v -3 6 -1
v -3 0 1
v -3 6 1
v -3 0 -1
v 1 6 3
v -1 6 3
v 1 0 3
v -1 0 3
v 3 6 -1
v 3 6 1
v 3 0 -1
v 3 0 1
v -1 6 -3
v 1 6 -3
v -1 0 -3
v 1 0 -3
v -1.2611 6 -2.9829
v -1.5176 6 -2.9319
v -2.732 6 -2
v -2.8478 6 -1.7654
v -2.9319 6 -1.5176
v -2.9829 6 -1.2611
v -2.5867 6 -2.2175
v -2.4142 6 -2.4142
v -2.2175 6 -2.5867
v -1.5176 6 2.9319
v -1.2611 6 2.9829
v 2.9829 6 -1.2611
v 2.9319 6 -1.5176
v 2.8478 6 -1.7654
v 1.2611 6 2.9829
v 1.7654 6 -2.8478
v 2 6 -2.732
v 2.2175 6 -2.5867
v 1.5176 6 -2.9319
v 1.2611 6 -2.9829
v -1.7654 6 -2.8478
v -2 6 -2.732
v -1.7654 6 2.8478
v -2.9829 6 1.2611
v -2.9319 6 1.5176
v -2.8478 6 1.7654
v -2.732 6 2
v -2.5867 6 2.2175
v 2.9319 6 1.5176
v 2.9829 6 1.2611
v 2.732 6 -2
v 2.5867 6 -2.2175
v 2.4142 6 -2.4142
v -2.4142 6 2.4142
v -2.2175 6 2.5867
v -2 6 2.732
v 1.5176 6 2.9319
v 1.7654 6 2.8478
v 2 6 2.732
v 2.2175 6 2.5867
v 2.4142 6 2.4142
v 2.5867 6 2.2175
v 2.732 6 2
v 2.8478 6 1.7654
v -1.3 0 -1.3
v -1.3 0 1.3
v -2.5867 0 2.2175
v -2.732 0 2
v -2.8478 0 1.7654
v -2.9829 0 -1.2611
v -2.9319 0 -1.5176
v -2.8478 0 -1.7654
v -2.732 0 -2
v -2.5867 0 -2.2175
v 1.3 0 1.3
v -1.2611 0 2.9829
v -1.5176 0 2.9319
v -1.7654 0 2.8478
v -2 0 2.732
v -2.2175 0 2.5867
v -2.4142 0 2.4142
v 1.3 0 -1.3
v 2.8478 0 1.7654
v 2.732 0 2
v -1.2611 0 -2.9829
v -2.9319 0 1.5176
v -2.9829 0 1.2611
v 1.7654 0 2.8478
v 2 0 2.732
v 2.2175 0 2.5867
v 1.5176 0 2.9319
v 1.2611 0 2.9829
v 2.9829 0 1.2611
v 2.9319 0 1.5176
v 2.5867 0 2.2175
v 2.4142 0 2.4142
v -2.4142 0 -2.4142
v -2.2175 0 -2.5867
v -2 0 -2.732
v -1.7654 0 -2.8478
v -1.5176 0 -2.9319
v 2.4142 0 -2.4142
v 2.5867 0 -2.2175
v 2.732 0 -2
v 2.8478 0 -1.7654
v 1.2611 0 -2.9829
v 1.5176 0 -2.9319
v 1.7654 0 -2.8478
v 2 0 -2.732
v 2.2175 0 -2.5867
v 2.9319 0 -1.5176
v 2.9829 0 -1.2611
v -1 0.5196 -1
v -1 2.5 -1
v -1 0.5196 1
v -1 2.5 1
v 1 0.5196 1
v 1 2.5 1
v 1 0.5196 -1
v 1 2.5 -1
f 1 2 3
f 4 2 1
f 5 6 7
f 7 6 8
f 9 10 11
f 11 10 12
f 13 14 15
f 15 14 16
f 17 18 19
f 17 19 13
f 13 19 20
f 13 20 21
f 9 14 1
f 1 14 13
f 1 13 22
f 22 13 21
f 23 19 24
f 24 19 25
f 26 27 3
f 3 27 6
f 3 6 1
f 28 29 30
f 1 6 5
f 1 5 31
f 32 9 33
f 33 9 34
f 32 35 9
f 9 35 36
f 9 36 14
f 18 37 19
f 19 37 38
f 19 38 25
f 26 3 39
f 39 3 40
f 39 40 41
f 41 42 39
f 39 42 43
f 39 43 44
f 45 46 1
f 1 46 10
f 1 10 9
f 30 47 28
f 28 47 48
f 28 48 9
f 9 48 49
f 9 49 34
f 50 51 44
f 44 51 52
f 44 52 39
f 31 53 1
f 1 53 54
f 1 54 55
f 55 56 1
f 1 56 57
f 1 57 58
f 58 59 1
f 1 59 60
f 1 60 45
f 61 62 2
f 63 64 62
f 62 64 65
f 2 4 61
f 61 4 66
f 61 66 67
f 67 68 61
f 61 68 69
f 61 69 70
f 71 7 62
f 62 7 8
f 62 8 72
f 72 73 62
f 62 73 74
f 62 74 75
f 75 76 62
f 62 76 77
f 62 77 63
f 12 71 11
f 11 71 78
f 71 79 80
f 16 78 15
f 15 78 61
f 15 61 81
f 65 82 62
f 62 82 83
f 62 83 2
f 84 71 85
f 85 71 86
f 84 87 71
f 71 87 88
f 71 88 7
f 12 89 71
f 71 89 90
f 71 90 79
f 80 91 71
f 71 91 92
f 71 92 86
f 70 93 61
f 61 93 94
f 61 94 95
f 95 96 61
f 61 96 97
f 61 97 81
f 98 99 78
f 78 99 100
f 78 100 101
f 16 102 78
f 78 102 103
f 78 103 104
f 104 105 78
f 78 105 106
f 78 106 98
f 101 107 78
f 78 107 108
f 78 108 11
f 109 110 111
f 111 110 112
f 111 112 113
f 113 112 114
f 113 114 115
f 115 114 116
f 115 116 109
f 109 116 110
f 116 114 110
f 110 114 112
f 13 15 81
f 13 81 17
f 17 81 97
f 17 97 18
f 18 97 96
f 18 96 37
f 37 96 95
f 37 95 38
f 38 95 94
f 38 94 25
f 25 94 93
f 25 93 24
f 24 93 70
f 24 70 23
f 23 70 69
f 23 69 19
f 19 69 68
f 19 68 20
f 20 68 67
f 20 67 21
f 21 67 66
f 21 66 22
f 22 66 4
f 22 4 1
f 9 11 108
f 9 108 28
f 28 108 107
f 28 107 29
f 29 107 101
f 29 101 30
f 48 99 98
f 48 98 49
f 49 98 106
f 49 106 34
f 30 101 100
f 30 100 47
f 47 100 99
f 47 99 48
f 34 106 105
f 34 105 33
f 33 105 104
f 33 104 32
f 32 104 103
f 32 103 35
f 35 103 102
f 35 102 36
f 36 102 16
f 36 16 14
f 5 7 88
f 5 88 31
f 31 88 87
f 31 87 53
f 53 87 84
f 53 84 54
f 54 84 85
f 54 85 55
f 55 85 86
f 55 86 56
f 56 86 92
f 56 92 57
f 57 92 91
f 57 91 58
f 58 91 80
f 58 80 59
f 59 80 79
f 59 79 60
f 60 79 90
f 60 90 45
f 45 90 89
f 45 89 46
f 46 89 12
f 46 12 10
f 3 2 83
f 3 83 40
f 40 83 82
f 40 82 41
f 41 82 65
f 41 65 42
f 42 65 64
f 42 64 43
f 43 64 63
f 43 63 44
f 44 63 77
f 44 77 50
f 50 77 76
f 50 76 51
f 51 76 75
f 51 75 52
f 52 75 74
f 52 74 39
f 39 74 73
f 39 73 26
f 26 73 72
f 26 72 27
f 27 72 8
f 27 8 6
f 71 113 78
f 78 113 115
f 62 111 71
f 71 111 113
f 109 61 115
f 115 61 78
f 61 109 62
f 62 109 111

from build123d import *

# Parameters (mm, degrees)
SKETCH1_W           = 6
SKETCH1_H           = 6
BOSS_EXTRUDE1_DEPTH = 6
SKETCH2_W           = 2
SKETCH2_H           = 2
CUT_EXTRUDE1_DEPTH  = 2.5
FILLET1_R           = 2
CHAMFER1_SIZE       = 0.3
CHAMFER1_SIZE2      = 0.519615242


with BuildPart() as part:
    # Sketch1 → Boss-Extrude1 (new body)
    with BuildSketch(Plane(origin=(0, 0, 0), x_dir=(1, 0, 0), z_dir=(0, 1, 0))):
        Rectangle(SKETCH1_W, SKETCH1_H)
    extrude(amount=BOSS_EXTRUDE1_DEPTH)

    # Sketch2 → Cut-Extrude1 (cut)
    with BuildSketch(Plane.XZ):
        Rectangle(SKETCH2_W, SKETCH2_H)
    extrude(amount=-CUT_EXTRUDE1_DEPTH, mode=Mode.SUBTRACT)

    # Fillet1
    fillet1_edges = [part.edges().sort_by_distance(p)[0] for p in [
        (-3, 3, -3),
        (3, 3, -3),
        (3, 3, 3),
        (-3, 3, 3),
    ]]
    fillet(fillet1_edges, radius=FILLET1_R)

    # Chamfer1
    chamfer1_edges = [part.edges().sort_by_distance(p)[0] for p in [
        (-1, 0, 0),
        (0, 0, -1),
        (1, 0, 0),
        (0, 0, 1),
    ]]
    chamfer1_side = [part.faces().sort_by_distance(p)[0] for p in [
        (0, 0, 2.915147186),
    ]]
    chamfer(chamfer1_edges, length=CHAMFER1_SIZE, length2=CHAMFER1_SIZE2, reference=chamfer1_side[0])


solid = part.part
